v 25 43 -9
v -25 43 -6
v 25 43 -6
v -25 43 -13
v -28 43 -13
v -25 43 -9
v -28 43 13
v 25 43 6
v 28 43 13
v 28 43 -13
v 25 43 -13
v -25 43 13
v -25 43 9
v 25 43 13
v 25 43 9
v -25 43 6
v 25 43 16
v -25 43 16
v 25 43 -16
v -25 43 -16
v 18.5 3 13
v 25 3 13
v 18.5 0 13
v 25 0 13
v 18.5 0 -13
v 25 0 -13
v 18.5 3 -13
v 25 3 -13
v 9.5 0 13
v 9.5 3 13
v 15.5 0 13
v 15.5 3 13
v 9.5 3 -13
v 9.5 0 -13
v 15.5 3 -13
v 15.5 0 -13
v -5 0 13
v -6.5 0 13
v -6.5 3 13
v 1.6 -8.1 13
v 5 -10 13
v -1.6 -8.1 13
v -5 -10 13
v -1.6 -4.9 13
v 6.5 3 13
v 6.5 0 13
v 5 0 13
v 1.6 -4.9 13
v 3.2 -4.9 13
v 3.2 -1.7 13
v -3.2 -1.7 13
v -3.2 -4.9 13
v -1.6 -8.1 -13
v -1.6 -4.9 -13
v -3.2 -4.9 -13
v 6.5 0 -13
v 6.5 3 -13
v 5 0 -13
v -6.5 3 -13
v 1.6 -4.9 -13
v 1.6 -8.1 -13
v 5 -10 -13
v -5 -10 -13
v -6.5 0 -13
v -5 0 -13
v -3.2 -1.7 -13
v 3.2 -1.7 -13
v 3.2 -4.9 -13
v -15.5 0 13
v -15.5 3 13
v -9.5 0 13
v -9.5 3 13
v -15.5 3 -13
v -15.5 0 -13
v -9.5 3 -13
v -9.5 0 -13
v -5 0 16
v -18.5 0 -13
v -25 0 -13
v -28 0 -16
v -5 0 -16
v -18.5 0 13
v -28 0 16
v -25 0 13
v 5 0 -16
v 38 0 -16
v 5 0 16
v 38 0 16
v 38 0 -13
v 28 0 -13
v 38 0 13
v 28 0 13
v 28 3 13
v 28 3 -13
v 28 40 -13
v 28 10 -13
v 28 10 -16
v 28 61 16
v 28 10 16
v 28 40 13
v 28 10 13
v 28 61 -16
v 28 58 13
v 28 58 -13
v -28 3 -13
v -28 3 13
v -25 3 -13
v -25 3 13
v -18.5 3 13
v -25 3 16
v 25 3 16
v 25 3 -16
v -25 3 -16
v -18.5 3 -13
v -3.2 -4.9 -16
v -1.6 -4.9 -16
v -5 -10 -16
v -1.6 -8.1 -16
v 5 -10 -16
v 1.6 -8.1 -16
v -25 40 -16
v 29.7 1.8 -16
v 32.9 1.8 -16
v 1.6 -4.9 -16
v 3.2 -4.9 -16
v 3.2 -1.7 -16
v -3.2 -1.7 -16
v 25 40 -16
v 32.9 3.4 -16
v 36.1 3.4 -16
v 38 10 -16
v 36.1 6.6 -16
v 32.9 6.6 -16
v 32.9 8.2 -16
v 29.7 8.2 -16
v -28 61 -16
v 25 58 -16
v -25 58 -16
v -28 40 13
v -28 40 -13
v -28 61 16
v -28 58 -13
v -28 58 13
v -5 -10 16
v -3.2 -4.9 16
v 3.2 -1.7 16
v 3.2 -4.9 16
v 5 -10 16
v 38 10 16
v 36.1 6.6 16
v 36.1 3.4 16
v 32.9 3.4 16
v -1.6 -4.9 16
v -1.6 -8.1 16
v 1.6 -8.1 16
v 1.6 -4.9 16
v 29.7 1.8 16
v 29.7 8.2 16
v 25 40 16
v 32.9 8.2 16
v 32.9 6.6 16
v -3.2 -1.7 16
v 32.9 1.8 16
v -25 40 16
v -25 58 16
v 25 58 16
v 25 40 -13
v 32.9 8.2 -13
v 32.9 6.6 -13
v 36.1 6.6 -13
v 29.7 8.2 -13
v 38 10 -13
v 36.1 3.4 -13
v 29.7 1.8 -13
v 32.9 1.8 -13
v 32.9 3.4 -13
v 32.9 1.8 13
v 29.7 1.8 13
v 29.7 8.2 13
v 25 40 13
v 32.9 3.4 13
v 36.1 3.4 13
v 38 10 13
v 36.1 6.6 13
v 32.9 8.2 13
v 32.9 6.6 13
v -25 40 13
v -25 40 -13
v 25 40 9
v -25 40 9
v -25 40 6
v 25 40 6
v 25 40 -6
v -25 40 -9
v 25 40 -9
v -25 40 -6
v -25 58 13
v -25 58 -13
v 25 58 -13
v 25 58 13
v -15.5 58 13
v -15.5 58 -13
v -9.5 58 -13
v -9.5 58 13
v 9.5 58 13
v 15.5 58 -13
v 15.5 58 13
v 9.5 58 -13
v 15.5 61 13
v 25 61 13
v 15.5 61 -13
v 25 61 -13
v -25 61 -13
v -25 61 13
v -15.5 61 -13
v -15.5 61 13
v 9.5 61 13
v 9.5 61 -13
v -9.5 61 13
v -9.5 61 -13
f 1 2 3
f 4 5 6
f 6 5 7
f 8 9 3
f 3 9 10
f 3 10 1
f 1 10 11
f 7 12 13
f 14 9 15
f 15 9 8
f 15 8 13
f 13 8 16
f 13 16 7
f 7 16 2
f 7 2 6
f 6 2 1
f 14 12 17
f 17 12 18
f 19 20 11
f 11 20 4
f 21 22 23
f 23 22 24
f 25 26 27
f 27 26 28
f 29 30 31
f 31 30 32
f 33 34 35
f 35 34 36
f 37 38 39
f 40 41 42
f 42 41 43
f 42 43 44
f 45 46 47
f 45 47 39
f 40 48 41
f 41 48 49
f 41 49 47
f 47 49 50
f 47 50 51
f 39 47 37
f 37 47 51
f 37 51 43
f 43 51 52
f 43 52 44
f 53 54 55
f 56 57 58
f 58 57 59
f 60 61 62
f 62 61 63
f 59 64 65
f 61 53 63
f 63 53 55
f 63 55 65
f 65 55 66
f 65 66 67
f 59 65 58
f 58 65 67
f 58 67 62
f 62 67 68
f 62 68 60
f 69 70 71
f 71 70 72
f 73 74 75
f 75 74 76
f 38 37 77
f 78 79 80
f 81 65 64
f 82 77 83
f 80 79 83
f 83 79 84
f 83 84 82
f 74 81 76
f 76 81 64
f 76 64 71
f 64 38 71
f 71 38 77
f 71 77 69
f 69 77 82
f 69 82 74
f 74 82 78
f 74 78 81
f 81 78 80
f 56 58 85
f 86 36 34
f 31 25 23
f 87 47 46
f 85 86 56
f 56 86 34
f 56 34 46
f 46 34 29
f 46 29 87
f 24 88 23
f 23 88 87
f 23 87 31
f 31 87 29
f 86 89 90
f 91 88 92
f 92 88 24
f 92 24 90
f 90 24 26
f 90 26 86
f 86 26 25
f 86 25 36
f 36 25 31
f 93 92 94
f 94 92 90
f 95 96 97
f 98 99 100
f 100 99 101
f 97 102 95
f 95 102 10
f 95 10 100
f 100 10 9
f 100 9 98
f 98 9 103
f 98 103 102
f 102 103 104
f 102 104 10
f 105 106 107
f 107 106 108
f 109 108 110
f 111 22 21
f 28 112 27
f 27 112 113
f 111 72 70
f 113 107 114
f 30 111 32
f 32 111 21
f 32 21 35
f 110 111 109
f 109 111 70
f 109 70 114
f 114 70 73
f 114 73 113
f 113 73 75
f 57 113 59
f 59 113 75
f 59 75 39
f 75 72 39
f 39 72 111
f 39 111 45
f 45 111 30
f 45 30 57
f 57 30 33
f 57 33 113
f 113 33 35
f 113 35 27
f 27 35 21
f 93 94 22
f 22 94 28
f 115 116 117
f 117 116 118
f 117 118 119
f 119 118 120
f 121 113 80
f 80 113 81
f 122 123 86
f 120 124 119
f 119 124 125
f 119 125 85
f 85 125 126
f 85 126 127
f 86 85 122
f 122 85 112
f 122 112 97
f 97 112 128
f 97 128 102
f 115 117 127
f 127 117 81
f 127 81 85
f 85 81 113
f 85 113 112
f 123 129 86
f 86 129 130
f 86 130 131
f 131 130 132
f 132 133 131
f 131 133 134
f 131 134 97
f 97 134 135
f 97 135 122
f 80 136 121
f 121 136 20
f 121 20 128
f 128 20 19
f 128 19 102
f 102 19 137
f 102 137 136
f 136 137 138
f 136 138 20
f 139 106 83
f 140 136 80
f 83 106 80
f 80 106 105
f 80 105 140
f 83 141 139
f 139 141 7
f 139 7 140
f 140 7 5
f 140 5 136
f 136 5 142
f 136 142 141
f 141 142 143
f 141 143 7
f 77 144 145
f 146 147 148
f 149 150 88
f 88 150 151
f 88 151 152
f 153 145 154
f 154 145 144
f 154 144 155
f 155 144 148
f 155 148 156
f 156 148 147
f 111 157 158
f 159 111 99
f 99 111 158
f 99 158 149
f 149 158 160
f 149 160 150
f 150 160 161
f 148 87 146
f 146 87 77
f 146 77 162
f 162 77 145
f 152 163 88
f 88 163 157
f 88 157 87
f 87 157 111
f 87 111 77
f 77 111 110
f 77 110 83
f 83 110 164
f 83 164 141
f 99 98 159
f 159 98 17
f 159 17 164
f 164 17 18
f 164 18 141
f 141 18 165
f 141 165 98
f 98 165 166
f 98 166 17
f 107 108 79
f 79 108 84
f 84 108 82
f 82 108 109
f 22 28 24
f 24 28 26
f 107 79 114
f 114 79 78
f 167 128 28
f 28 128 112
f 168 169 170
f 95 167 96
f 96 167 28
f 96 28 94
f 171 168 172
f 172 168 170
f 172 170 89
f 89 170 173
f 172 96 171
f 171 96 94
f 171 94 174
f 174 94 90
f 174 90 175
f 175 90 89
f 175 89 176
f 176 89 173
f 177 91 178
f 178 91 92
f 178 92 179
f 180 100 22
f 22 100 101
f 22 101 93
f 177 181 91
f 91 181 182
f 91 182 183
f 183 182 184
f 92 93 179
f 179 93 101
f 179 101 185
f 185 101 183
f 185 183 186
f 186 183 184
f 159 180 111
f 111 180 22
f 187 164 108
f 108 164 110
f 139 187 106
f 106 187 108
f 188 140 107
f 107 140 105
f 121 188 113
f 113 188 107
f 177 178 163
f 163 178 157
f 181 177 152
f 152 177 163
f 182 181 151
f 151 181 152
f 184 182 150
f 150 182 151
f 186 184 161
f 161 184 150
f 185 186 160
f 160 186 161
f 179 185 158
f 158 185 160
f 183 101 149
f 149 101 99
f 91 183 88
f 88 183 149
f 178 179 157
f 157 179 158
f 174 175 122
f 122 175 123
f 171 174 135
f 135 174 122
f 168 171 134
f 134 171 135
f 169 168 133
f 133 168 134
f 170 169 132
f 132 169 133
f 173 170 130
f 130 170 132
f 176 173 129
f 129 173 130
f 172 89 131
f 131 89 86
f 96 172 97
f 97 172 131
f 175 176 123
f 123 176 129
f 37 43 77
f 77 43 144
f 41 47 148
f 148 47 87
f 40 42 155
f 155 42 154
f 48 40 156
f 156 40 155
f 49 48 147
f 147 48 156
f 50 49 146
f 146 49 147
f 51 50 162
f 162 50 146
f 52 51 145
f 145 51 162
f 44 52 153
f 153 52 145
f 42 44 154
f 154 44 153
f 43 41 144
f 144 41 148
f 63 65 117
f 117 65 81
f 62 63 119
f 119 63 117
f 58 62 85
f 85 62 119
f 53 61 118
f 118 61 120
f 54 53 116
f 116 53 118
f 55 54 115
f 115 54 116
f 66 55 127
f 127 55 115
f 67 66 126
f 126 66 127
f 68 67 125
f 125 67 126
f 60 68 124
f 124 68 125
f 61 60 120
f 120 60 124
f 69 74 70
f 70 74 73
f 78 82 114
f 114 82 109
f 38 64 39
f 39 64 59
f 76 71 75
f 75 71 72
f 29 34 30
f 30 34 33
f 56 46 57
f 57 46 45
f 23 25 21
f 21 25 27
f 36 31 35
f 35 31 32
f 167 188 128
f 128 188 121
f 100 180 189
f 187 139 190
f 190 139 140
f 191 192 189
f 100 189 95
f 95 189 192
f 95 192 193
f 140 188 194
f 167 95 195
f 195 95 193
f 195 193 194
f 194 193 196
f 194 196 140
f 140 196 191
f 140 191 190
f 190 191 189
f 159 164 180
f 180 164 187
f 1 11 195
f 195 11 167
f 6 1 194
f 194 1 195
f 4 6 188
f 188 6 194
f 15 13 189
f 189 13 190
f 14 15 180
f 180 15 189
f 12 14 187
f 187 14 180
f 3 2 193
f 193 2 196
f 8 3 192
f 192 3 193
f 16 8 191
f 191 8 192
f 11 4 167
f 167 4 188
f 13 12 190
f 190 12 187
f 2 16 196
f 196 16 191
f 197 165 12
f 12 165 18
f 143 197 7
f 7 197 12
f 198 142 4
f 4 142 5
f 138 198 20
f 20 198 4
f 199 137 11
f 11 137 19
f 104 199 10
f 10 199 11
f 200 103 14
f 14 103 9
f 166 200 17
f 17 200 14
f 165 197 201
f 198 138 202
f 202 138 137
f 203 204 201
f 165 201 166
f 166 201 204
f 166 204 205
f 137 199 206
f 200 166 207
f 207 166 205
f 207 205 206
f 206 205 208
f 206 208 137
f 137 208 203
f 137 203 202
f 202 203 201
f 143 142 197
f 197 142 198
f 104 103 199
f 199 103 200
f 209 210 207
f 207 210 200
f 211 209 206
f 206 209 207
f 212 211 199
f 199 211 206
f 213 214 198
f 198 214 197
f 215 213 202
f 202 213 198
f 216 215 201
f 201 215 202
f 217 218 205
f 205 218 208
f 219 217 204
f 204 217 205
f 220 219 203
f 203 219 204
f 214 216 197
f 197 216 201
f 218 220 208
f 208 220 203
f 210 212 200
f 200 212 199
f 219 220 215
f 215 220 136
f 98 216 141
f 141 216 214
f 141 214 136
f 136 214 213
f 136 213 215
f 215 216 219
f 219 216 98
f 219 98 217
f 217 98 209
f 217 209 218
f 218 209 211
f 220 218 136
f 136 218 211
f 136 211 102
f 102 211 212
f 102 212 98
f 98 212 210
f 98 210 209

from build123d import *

# Parameters (mm, degrees)
SKETCH1_W           = 56
SKETCH1_H           = 32
SKETCH1_W_2         = 50
SKETCH1_H_2         = 26
BOSS_EXTRUDE1_DEPTH = 3
SKETCH2_W           = 3
SKETCH2_H           = 3
BOSS_EXTRUDE2_DEPTH = 40
BOSS_EXTRUDE3_DEPTH = 3
BOSS_EXTRUDE4_DEPTH = 3
SKETCH5_W           = 3
SKETCH5_H           = 26
BOSS_EXTRUDE5_DEPTH = 3
SKETCH6_W           = 50
SKETCH6_H           = 3
SKETCH6_W_2         = 3
BOSS_EXTRUDE7_DEPTH = 3
SKETCH7_W           = 3
SKETCH7_H           = 3
BOSS_EXTRUDE8_DEPTH = 15
SKETCH8_W           = 3
SKETCH8_H           = 26
SKETCH8_W_2         = 6
SKETCH8_H_2         = 3
BOSS_EXTRUDE9_DEPTH = 3


with BuildPart() as part:
    # Sketch1 → Boss-Extrude1 (new body)
    with BuildSketch(Plane(origin=(0, 0, 0), x_dir=(1, 0, 0), z_dir=(0, 1, 0))):
        Rectangle(SKETCH1_W, SKETCH1_H)
        Rectangle(SKETCH1_W_2, SKETCH1_H_2, mode=Mode.SUBTRACT)
    extrude(amount=BOSS_EXTRUDE1_DEPTH)

    # Sketch2 → Boss-Extrude2 (add)
    with BuildSketch(Plane(origin=(0, 0, 0), x_dir=(1, 0, 0), z_dir=(0, 1, 0))):
        with Locations((26.5, 14.5)):
            Rectangle(SKETCH2_W, SKETCH2_H)
        with Locations((26.5, -14.5)):
            Rectangle(SKETCH2_W, SKETCH2_H)
        with Locations((-26.5, -14.5)):
            Rectangle(SKETCH2_W, SKETCH2_H)
        with Locations((-26.5, 14.5)):
            Rectangle(SKETCH2_W, SKETCH2_H)
    extrude(amount=BOSS_EXTRUDE2_DEPTH)

    # Sketch3 → Boss-Extrude3 (add)
    with BuildSketch(Plane.XY.offset(16)):
        Polygon((28, 10), (28, 5), (29.7, 5), (29.7, 8.2), (32.9, 8.2), (32.9, 6.6), (36.1, 6.6), (36.1, 5), (38, 5), (38, 10), align=None)
        Polygon((28, 5), (28, 0), (38, 0), (38, 5), (36.1, 5), (36.1, 3.4), (32.9, 3.4), (32.9, 1.8), (29.7, 1.8), (29.7, 5), align=None)
    boss_extrude3 = extrude(amount=-BOSS_EXTRUDE3_DEPTH)

    # Mirror1: Boss-Extrude3 across plane
    add(boss_extrude3.mirror(Plane.XY))

    # Sketch4 → Boss-Extrude4 (add)
    with BuildSketch(Plane.XY.offset(16)):
        Polygon((5, 0), (0, 0), (-5, 0), (-5, -10), (0, -10), (5, -10), align=None)
        Polygon((1.6, -8.1), (0, -8.1), (-1.6, -8.1), (-1.6, -4.9), (-3.2, -4.9), (-3.2, -1.7), (3.2, -1.7), (3.2, -4.9), (1.6, -4.9), align=None, mode=Mode.SUBTRACT)
    boss_extrude4 = extrude(amount=-BOSS_EXTRUDE4_DEPTH)

    # Mirror2: Boss-Extrude4 across plane
    add(boss_extrude4.mirror(Plane.XY))

    # Sketch5 → Boss-Extrude5 (add)
    with BuildSketch(Plane(origin=(0, 3, 0), x_dir=(1, 0, 0), z_dir=(0, 1, 0))):
        with Locations((-17, 0)):
            Rectangle(SKETCH5_W, SKETCH5_H)
        with Locations((-8, 0)):
            Rectangle(SKETCH5_W, SKETCH5_H)
        with Locations((8, 0)):
            Rectangle(SKETCH5_W, SKETCH5_H)
        with Locations((17, 0)):
            Rectangle(SKETCH5_W, SKETCH5_H)
    extrude(amount=-BOSS_EXTRUDE5_DEPTH)

    # Sketch6 → Boss-Extrude7 (add)
    # profile 1 of 4: a face of its own
    with BuildSketch(Plane(origin=(0, 40, 0), x_dir=(1, 0, 0), z_dir=(0, 1, 0))):
        Polygon((-28, -16), (25, -16), (25, -13), (28, -13), (28, 16), (-28, 16), align=None)
        Polygon((25, -9), (25, -13), (-25, -13), (-25, -9), (-25, -6), (-25, 6), (-25, 9), (-25, 13), (25, 13), (25, 9), (25, 6), (25, -6), align=None, mode=Mode.SUBTRACT)
    # profile 2 of 4: a face of its own
    with BuildSketch(Plane(origin=(0, 40, 0), x_dir=(1, 0, 0), z_dir=(0, 1, 0))):
        with Locations((0, -7.5)):
            Rectangle(SKETCH6_W, SKETCH6_H)
    # profile 3 of 4: a face of its own
    with BuildSketch(Plane(origin=(0, 40, 0), x_dir=(1, 0, 0), z_dir=(0, 1, 0))):
        with Locations((0, 7.5)):
            Rectangle(SKETCH6_W, SKETCH6_H)
    # profile 4 of 4: a face of its own
    with BuildSketch(Plane(origin=(0, 40, 0), x_dir=(1, 0, 0), z_dir=(0, 1, 0))):
        with Locations((26.5, -14.5)):
            Rectangle(SKETCH6_W_2, SKETCH6_H)
    extrude(amount=BOSS_EXTRUDE7_DEPTH)

    # Sketch7 → Boss-Extrude8 (add)
    with BuildSketch(Plane(origin=(0, 43, 0), x_dir=(1, 0, 0), z_dir=(0, 1, 0))):
        with Locations((-26.5, -14.5)):
            Rectangle(SKETCH7_W, SKETCH7_H)
        with Locations((-26.5, 14.5)):
            Rectangle(SKETCH7_W, SKETCH7_H)
        with Locations((26.5, 14.5)):
            Rectangle(SKETCH7_W, SKETCH7_H)
        with Locations((26.5, -14.5)):
            Rectangle(SKETCH7_W, SKETCH7_H)
    extrude(amount=BOSS_EXTRUDE8_DEPTH)

    # Sketch8 → Boss-Extrude9 (add)
    # profile 1 of 5: a face of its own
    with BuildSketch(Plane(origin=(0, 58, 0), x_dir=(1, 0, 0), z_dir=(0, 1, 0))):
        Polygon((-25, 16), (-25, 13), (-28, 13), (-28, -16), (28, -16), (28, 16), align=None)
        Polygon((25, 13), (25, -13), (15.5, -13), (12.5, -13), (9.5, -13), (0, -13), (-9.5, -13), (-15.5, -13), (-25, -13), (-25, 13), (-15.5, 13), (-9.5, 13), (9.5, 13), (12.5, 13), (15.5, 13), align=None, mode=Mode.SUBTRACT)
    # profile 2 of 5: a face of its own
    with BuildSketch(Plane(origin=(0, 58, 0), x_dir=(1, 0, 0), z_dir=(0, 1, 0))):
        with Locations((11, 0)):
            Rectangle(SKETCH8_W, SKETCH8_H)
    # profile 3 of 5: a face of its own
    with BuildSketch(Plane(origin=(0, 58, 0), x_dir=(1, 0, 0), z_dir=(0, 1, 0))):
        with Locations((14, 0)):
            Rectangle(SKETCH8_W, SKETCH8_H)
    # profile 4 of 5: a face of its own
    with BuildSketch(Plane(origin=(0, 58, 0), x_dir=(1, 0, 0), z_dir=(0, 1, 0))):
        with Locations((-12.5, 0)):
            Rectangle(SKETCH8_W_2, SKETCH8_H)
    # profile 5 of 5: a face of its own
    with BuildSketch(Plane(origin=(0, 58, 0), x_dir=(1, 0, 0), z_dir=(0, 1, 0))):
        with Locations((-26.5, 14.5)):
            Rectangle(SKETCH8_W, SKETCH8_H_2)
    extrude(amount=BOSS_EXTRUDE9_DEPTH)


solid = part.part
